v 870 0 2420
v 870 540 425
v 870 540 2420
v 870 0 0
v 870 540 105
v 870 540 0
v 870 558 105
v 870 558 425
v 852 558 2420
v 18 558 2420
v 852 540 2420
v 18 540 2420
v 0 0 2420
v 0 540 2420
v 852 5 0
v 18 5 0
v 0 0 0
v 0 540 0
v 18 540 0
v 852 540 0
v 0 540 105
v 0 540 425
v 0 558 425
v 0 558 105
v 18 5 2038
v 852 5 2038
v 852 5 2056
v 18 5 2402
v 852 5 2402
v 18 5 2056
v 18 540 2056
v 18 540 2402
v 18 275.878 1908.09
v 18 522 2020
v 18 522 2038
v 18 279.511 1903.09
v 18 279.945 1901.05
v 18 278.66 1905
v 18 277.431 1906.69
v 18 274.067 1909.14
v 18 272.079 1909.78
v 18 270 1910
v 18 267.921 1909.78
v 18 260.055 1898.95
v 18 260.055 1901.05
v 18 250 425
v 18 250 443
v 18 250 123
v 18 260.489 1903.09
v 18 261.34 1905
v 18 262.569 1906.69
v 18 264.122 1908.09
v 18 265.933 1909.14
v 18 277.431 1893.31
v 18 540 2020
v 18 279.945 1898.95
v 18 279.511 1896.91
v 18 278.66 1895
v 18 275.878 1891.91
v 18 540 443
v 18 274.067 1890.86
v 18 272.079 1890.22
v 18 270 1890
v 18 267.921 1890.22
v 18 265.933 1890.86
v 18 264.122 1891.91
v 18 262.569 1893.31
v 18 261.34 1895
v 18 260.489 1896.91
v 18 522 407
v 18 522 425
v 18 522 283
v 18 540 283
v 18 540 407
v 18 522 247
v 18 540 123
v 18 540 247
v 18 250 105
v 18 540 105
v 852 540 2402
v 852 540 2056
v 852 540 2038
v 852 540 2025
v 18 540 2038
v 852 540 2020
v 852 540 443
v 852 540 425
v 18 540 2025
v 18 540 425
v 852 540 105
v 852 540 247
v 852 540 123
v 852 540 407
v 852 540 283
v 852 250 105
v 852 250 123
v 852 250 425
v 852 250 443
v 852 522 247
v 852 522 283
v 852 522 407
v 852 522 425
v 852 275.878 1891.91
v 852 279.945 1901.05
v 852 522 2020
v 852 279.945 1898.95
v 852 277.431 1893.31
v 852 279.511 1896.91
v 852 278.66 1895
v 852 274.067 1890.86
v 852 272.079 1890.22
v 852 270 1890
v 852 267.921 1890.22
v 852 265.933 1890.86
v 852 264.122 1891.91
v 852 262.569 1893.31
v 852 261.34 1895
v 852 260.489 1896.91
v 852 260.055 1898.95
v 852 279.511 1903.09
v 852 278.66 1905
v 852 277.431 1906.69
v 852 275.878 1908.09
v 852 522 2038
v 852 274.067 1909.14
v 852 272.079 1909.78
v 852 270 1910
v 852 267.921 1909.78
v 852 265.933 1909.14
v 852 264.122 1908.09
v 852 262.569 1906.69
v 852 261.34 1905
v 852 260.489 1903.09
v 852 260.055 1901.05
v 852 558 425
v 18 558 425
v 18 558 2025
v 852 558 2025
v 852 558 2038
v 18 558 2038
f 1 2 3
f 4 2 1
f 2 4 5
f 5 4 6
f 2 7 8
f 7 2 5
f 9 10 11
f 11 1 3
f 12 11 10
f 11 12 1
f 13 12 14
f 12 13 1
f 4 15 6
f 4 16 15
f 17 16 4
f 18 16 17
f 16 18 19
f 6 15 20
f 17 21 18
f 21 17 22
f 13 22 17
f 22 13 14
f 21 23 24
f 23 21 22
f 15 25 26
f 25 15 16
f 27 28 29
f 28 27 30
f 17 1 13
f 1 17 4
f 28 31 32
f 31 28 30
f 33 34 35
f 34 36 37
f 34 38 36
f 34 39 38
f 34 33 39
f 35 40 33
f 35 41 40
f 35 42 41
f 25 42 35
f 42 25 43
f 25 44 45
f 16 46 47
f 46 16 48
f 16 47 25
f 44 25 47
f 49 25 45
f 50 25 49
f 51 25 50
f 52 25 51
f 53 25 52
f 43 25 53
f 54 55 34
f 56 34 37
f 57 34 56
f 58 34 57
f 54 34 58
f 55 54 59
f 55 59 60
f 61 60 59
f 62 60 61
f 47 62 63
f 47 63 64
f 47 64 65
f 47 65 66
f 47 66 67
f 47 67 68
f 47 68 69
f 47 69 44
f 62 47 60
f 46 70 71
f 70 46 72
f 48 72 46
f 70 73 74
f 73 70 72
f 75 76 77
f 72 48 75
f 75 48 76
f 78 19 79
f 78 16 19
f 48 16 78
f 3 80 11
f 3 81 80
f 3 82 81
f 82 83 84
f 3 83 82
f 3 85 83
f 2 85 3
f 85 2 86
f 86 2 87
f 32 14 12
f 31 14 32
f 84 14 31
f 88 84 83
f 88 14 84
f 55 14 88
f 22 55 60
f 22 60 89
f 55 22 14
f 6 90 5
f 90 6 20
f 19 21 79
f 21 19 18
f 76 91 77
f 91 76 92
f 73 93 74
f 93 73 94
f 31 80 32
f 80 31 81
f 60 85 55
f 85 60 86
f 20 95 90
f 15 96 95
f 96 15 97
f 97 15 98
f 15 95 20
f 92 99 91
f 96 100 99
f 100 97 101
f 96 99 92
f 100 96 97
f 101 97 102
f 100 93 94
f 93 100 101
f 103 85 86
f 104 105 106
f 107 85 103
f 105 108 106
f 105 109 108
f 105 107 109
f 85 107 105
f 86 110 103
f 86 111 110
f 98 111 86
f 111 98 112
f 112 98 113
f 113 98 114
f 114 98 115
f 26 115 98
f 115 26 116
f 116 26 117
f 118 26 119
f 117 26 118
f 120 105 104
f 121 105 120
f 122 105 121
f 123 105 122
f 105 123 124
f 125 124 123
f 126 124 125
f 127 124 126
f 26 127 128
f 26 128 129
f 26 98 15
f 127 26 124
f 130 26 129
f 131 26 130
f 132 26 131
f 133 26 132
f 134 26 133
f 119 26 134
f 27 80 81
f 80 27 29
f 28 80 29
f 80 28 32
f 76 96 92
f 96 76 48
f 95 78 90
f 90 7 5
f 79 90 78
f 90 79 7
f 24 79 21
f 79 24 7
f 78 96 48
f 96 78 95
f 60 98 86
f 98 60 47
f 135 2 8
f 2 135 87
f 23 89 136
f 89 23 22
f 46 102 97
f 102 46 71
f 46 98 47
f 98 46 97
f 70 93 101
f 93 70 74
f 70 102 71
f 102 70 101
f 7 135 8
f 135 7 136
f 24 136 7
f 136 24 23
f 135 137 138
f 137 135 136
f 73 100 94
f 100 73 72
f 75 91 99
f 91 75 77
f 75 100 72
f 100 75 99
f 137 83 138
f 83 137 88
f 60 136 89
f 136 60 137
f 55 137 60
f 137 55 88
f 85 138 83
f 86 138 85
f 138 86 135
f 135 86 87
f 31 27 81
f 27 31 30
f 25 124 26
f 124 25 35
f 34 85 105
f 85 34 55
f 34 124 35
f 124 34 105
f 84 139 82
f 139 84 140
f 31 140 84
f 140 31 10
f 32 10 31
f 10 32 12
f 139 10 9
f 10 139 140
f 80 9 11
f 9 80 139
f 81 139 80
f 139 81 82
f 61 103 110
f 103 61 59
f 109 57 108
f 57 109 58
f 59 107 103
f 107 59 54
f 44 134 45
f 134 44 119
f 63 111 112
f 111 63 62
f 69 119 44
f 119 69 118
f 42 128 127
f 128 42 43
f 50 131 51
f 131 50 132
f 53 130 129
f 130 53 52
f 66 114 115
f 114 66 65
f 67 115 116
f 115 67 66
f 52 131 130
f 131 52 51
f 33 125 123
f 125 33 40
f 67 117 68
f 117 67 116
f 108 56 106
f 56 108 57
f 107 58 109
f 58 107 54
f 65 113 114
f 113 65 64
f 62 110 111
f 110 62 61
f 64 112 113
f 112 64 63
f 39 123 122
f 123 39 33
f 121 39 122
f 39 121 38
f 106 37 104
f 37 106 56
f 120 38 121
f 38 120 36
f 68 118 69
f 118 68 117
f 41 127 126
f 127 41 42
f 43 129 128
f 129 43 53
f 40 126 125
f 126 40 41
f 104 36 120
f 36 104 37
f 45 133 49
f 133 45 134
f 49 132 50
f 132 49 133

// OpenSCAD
// font size
Size = 20;

// font name, style
Font = "Consolas";

// Kern factor to pull letters tighter or further.
Kern = 0.9;

// sum the prefix of a vector.
function Sum(v, i) = i < 1?0:v[i - 1] + Sum(v, i - 1);

// given a vector of characters and a corresponding vector of character widths, draw them,
// extruding the odd ones 5 and the even ones 4.
module stagger2(chars, lens) {
    for (i = [0:len(chars) - 1]) {
        linear_extrude(4 + (i % 2)) {
            translate([Sum(lens, i), 0])text(chars[i], font = Font, size = Size);
        }
    }
}

// simple call - just pass in the string to render
module stagger(s) {
    stagger2([for (c = s)c], [for (c = s)20 * Kern]);
}

// Example usage
//stagger("Sample");


//// Find the unitary vector with direction v. Fails if v=[0,0,0].
//function unit(v) = norm(v) > 0 ? v / norm(v) : undef;
//// Find the transpose of a rectangular matrix
//function transpose(m) = // m is any rectangular matrix of objects
//    [for (j = [0:len(m[0]) - 1]) [for (i = [0:len(m) - 1]) m[i][j]]];
//// The identity matrix with dimension n
//function identity(n) = [for (i = [0:n - 1]) [for (j = [0:n - 1]) i == j ? 1 : 0]];
//
//
//function rotate_from_to(a, b) =
//let(axis = unit(cross(a, b)))
//        axis * axis >= 0.99 ?
//        transpose([unit(b), axis, cross(axis, unit(b))]) *
//            [unit(a), axis, cross(axis, unit(a))] :
//        identity(3);
//
//module line(p0, p1, diameter = 1) {
//    v = p1 - p0;
//    color([0, 0, 0]) {
//        translate(p0) {
//            // rotate the cylinder so its z axis is brought to direction v
//            multmatrix(rotate_from_to([0, 0, 1], v)) {
//                cylinder(d = diameter, h = norm(v), $fn = 4);
//            }
//        }
//    }
//}


module szafa_przedpokoj() {
    szafa_d = 540;
    szafa_h = 2420;
    szafa_w = 870;
    grubosc_plyty = 18;
    miejsce_na_odkurzacz_h = 105;
    miejsce_na_odkurzacz_d = 250;
    szuflada_h = 160;
    srodkowa_z = 2 * szuflada_h + miejsce_na_odkurzacz_h;
    miejsce_na_kurtki_h = 1600;
    palak_h = 1900;
    palak_odstep_od_sufitu_h = 120;
    color([200 / 255, 200 / 255, 200 / 255]) {
        // plecówka
        cube([szafa_w, 5, szafa_h]);
        // lewa
        cube([grubosc_plyty, szafa_d, szafa_h]);
        // prawa
        translate([szafa_w - grubosc_plyty, 0, 0]) {
            cube([grubosc_plyty, szafa_d, szafa_h]);
        }
        // góra
        translate([0, 0, szafa_h - grubosc_plyty]) {
            cube([szafa_w, szafa_d, grubosc_plyty]);
        }
        // dół
        translate([0, miejsce_na_odkurzacz_d, miejsce_na_odkurzacz_h]) {
            cube([szafa_w, szafa_d - miejsce_na_odkurzacz_d, grubosc_plyty]);
        }
        // środek
        translate([0, miejsce_na_odkurzacz_d, srodkowa_z]) {
            cube([szafa_w, szafa_d - miejsce_na_odkurzacz_d, grubosc_plyty]);
        }
        // deseczka środek
        translate([0, szafa_d - grubosc_plyty, srodkowa_z - grubosc_plyty]) {
            cube([szafa_w, grubosc_plyty, 2 * grubosc_plyty]);
        }
        // front szuflad
        translate([0, szafa_d + sin($t * 180) * 100, miejsce_na_odkurzacz_h]) {
            cube([szafa_w, grubosc_plyty, szuflada_h]);
        }
        // deseczka szuflad
        translate([0, szafa_d - grubosc_plyty, miejsce_na_odkurzacz_h + szuflada_h - grubosc_plyty]) {
            cube([szafa_w, grubosc_plyty, 2 * grubosc_plyty]);
        }
    //fron szuflady 2
        translate([0, szafa_d + $t * 100, miejsce_na_odkurzacz_h + szuflada_h]) {
            cube([szafa_w, grubosc_plyty, szuflada_h]);
        }
        //         lewe drzwi
        translate([grubosc_plyty, szafa_d, srodkowa_z]) {
            rotate([0, 0, $t * 90]) {
                cube([szafa_w / 2 - grubosc_plyty, grubosc_plyty, miejsce_na_kurtki_h]);
            }
        }
        //         prawe drzwi
        translate([szafa_w - grubosc_plyty, szafa_d, srodkowa_z]) {
            rotate([0, 0, 180 - $t * 90]) {
                translate([0, -grubosc_plyty, 0]) {
                    cube([szafa_w / 2 - grubosc_plyty, grubosc_plyty, miejsce_na_kurtki_h]);
                }
            }
        }
        // gorna półka
        gorna_polka_gora_z = palak_h + palak_odstep_od_sufitu_h + grubosc_plyty;
        gorne_drzwiczki_h = szafa_h - gorna_polka_gora_z;
        translate([0, 0, gorna_polka_gora_z]) {
            cube([szafa_w, szafa_d, grubosc_plyty]);
        }
        // deseczka półka
        translate([0, szafa_d - grubosc_plyty, gorna_polka_gora_z - grubosc_plyty]) {
            cube([szafa_w, grubosc_plyty, 2 * grubosc_plyty]);
        }
        // lewe drzwiczki
        translate([grubosc_plyty, szafa_d, gorna_polka_gora_z]) {
            rotate([0, 0,  - $t * 90]) {
                cube([szafa_w / 2 - grubosc_plyty, grubosc_plyty, gorne_drzwiczki_h]);
            }
        }
        // prawe drzwiczki
        translate([szafa_w - grubosc_plyty, szafa_d, gorna_polka_gora_z]) {
            rotate([0, 0, 180 - $t * 90]) {
                translate([0, -grubosc_plyty, 0]) {
                    cube([szafa_w / 2 - grubosc_plyty, grubosc_plyty, gorne_drzwiczki_h]);
                }
            }
        }
        // pałąk
        translate([szafa_w / 2, szafa_d / 2, palak_h]) {
            rotate([0, 90, 0]) {
                cylinder(h = szafa_w, d1 = 20, d2 = 20, center = true);
            }
        }
    }
}
//line([0, 0, 0], [5, 23, 42]);
//line([0, 0, 0], [5, 23, 42]);

szafa_przedpokoj();
